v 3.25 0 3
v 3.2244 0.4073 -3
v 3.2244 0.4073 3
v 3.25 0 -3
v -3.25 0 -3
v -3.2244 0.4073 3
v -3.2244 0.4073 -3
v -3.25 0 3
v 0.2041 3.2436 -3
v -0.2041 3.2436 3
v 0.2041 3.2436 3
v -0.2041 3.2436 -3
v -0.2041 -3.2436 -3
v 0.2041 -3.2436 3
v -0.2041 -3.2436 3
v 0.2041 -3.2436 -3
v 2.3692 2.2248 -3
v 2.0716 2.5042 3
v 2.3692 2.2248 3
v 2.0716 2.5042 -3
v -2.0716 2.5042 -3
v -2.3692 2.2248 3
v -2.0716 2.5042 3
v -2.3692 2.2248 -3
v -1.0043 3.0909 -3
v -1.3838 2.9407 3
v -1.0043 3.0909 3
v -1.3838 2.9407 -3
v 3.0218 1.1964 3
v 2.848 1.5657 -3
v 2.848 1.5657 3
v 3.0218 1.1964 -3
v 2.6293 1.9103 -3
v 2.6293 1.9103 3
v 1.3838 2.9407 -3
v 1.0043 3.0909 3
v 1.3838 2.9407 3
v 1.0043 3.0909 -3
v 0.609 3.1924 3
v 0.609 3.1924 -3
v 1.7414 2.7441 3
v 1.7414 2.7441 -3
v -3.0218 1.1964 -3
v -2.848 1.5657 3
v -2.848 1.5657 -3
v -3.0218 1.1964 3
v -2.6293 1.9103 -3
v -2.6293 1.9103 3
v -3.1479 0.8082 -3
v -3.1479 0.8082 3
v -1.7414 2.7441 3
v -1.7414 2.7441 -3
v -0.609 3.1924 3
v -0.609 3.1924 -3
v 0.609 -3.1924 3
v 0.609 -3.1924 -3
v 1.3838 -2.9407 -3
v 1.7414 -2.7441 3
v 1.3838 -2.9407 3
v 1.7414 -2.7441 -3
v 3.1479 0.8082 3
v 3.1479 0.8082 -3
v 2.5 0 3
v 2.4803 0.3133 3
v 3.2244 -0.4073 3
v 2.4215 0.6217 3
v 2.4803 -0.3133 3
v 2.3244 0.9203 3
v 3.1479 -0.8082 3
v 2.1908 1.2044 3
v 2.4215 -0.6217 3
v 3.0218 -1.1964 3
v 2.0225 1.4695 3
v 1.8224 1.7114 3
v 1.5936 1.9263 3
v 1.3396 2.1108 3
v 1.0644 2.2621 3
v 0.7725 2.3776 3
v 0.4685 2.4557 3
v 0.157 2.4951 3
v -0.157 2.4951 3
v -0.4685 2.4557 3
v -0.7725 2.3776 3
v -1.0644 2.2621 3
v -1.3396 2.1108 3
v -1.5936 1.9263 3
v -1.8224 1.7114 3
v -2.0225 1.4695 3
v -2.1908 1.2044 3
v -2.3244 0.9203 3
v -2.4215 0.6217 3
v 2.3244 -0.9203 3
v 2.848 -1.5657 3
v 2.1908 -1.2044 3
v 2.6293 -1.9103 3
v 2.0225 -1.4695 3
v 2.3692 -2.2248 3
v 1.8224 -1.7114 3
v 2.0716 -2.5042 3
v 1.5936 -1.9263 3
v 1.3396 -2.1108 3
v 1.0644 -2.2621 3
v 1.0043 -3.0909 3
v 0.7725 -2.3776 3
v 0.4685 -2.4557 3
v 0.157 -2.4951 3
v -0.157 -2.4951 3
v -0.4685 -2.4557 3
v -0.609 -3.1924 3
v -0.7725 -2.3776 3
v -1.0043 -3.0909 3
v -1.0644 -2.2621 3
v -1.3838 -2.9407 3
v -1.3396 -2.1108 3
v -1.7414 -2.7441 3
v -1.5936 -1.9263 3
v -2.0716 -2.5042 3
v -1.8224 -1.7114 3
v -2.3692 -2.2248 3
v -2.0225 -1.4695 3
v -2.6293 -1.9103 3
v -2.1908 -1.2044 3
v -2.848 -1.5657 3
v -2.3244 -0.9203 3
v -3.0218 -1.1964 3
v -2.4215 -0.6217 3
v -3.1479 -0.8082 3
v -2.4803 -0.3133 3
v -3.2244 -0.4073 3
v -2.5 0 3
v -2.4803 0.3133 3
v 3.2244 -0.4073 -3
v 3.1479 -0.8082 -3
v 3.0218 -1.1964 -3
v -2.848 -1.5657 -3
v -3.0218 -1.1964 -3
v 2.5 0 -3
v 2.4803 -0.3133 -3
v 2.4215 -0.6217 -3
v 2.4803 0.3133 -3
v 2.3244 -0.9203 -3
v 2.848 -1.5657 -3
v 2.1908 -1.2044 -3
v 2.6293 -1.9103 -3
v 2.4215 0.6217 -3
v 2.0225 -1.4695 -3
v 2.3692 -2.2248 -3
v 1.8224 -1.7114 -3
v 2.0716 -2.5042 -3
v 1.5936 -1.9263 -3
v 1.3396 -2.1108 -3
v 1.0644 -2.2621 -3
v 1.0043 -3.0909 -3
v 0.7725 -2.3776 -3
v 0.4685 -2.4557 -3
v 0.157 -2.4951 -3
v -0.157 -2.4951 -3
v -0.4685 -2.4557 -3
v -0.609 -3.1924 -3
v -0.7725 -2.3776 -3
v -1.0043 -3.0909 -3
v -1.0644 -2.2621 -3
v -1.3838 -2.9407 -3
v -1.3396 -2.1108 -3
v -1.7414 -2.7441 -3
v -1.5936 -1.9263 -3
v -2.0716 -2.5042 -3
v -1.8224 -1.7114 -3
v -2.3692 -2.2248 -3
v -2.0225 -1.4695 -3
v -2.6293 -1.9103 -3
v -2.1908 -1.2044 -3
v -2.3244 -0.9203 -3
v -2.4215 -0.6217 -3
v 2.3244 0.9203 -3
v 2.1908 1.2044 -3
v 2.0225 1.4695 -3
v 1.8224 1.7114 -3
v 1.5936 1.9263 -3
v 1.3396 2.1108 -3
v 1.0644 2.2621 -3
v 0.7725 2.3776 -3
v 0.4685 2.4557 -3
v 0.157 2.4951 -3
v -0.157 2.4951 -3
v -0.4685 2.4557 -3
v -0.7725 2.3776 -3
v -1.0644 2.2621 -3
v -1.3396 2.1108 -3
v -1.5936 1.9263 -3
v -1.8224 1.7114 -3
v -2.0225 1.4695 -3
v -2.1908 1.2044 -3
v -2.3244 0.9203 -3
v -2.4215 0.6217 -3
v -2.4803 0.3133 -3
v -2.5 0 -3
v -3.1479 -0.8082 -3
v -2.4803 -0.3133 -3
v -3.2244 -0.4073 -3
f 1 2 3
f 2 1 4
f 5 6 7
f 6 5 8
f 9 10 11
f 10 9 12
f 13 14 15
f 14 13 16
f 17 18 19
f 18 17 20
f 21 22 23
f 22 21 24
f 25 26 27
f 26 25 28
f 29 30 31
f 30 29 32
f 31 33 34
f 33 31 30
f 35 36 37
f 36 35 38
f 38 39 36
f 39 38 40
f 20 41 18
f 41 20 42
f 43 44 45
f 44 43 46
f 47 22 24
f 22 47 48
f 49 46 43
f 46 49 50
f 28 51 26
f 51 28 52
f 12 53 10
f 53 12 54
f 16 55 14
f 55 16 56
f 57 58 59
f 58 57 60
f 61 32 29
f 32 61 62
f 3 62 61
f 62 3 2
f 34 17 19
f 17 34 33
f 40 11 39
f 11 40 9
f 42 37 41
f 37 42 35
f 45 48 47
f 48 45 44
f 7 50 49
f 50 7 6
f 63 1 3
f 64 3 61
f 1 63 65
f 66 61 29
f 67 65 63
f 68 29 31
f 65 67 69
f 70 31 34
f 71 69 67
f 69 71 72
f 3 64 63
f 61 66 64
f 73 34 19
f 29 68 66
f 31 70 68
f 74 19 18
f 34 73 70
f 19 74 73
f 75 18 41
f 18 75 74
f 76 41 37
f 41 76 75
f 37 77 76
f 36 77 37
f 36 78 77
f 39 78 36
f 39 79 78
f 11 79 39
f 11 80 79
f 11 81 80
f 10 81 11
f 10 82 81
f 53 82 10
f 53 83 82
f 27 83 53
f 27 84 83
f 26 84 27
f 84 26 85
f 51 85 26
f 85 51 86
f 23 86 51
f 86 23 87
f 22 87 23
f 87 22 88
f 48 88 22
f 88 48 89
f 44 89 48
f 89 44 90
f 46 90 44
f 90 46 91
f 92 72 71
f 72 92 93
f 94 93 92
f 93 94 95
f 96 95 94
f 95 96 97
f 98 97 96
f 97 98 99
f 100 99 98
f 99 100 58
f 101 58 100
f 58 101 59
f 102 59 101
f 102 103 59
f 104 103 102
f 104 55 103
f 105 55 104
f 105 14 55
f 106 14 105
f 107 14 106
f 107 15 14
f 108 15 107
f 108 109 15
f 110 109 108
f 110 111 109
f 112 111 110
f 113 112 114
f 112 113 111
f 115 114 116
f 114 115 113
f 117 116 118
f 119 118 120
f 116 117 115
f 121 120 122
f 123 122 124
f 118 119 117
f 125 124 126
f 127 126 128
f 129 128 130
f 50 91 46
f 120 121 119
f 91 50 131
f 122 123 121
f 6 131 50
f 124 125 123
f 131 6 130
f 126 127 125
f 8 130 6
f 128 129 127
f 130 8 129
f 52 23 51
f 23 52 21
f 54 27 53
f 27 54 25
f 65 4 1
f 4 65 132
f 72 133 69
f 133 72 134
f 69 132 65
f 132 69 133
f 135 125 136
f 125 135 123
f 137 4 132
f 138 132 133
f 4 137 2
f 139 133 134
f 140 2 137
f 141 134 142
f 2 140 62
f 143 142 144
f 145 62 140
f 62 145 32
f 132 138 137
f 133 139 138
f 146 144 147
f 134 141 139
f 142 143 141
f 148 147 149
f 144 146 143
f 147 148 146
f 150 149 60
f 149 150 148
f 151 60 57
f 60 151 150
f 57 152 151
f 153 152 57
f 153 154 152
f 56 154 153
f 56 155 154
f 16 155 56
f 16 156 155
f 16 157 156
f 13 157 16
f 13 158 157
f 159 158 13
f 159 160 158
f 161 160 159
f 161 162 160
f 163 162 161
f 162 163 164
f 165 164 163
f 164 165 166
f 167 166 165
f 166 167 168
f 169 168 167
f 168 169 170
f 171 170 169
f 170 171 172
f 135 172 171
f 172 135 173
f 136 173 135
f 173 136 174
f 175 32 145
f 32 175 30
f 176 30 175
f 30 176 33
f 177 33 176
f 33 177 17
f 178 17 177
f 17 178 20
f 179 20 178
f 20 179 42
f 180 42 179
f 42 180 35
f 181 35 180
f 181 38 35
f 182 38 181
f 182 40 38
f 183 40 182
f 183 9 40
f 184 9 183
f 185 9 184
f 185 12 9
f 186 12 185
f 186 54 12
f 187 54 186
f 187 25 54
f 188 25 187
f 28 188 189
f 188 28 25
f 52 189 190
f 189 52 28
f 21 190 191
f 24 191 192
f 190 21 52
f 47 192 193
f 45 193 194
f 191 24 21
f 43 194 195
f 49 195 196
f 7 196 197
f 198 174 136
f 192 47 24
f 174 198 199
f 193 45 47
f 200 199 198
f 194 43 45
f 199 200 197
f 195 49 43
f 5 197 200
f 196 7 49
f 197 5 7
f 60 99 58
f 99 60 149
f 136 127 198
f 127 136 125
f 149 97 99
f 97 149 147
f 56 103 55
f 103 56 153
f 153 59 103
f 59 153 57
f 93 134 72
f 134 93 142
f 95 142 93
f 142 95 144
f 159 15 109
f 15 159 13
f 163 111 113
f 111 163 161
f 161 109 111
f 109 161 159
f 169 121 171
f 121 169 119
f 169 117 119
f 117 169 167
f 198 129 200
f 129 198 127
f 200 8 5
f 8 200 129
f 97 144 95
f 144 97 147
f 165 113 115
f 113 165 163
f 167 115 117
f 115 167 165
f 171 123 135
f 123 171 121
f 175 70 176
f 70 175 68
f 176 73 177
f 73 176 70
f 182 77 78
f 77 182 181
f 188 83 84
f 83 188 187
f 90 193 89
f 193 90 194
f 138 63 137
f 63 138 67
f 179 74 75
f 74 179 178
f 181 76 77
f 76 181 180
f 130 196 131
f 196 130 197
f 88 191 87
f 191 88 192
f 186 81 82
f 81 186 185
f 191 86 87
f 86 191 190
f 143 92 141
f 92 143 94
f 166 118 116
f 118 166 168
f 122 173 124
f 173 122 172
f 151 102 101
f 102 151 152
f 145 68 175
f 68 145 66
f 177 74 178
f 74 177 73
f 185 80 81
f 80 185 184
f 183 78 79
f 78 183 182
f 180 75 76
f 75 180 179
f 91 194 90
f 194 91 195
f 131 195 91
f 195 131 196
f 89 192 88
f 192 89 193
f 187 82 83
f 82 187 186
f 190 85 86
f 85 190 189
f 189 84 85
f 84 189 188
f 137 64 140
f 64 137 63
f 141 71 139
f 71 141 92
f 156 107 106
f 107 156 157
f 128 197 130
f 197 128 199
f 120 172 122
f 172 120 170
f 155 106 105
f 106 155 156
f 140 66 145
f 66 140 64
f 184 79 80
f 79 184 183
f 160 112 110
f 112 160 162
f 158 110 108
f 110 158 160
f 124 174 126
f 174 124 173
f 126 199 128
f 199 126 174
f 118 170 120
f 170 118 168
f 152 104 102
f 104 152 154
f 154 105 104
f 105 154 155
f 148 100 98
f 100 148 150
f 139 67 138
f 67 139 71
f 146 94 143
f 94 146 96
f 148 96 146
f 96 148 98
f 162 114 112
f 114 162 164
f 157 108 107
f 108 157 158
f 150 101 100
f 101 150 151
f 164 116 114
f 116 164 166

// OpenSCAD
$fn = 50;


difference() {
	union() {
		translate(v = [0, 0, -3.0000000000]) {
			cylinder(h = 6, r = 3.2500000000);
		}
	}
	union() {
		translate(v = [0, 0, -100.0000000000]) {
			cylinder(h = 200, r = 2.5000000000);
		}
	}
}
